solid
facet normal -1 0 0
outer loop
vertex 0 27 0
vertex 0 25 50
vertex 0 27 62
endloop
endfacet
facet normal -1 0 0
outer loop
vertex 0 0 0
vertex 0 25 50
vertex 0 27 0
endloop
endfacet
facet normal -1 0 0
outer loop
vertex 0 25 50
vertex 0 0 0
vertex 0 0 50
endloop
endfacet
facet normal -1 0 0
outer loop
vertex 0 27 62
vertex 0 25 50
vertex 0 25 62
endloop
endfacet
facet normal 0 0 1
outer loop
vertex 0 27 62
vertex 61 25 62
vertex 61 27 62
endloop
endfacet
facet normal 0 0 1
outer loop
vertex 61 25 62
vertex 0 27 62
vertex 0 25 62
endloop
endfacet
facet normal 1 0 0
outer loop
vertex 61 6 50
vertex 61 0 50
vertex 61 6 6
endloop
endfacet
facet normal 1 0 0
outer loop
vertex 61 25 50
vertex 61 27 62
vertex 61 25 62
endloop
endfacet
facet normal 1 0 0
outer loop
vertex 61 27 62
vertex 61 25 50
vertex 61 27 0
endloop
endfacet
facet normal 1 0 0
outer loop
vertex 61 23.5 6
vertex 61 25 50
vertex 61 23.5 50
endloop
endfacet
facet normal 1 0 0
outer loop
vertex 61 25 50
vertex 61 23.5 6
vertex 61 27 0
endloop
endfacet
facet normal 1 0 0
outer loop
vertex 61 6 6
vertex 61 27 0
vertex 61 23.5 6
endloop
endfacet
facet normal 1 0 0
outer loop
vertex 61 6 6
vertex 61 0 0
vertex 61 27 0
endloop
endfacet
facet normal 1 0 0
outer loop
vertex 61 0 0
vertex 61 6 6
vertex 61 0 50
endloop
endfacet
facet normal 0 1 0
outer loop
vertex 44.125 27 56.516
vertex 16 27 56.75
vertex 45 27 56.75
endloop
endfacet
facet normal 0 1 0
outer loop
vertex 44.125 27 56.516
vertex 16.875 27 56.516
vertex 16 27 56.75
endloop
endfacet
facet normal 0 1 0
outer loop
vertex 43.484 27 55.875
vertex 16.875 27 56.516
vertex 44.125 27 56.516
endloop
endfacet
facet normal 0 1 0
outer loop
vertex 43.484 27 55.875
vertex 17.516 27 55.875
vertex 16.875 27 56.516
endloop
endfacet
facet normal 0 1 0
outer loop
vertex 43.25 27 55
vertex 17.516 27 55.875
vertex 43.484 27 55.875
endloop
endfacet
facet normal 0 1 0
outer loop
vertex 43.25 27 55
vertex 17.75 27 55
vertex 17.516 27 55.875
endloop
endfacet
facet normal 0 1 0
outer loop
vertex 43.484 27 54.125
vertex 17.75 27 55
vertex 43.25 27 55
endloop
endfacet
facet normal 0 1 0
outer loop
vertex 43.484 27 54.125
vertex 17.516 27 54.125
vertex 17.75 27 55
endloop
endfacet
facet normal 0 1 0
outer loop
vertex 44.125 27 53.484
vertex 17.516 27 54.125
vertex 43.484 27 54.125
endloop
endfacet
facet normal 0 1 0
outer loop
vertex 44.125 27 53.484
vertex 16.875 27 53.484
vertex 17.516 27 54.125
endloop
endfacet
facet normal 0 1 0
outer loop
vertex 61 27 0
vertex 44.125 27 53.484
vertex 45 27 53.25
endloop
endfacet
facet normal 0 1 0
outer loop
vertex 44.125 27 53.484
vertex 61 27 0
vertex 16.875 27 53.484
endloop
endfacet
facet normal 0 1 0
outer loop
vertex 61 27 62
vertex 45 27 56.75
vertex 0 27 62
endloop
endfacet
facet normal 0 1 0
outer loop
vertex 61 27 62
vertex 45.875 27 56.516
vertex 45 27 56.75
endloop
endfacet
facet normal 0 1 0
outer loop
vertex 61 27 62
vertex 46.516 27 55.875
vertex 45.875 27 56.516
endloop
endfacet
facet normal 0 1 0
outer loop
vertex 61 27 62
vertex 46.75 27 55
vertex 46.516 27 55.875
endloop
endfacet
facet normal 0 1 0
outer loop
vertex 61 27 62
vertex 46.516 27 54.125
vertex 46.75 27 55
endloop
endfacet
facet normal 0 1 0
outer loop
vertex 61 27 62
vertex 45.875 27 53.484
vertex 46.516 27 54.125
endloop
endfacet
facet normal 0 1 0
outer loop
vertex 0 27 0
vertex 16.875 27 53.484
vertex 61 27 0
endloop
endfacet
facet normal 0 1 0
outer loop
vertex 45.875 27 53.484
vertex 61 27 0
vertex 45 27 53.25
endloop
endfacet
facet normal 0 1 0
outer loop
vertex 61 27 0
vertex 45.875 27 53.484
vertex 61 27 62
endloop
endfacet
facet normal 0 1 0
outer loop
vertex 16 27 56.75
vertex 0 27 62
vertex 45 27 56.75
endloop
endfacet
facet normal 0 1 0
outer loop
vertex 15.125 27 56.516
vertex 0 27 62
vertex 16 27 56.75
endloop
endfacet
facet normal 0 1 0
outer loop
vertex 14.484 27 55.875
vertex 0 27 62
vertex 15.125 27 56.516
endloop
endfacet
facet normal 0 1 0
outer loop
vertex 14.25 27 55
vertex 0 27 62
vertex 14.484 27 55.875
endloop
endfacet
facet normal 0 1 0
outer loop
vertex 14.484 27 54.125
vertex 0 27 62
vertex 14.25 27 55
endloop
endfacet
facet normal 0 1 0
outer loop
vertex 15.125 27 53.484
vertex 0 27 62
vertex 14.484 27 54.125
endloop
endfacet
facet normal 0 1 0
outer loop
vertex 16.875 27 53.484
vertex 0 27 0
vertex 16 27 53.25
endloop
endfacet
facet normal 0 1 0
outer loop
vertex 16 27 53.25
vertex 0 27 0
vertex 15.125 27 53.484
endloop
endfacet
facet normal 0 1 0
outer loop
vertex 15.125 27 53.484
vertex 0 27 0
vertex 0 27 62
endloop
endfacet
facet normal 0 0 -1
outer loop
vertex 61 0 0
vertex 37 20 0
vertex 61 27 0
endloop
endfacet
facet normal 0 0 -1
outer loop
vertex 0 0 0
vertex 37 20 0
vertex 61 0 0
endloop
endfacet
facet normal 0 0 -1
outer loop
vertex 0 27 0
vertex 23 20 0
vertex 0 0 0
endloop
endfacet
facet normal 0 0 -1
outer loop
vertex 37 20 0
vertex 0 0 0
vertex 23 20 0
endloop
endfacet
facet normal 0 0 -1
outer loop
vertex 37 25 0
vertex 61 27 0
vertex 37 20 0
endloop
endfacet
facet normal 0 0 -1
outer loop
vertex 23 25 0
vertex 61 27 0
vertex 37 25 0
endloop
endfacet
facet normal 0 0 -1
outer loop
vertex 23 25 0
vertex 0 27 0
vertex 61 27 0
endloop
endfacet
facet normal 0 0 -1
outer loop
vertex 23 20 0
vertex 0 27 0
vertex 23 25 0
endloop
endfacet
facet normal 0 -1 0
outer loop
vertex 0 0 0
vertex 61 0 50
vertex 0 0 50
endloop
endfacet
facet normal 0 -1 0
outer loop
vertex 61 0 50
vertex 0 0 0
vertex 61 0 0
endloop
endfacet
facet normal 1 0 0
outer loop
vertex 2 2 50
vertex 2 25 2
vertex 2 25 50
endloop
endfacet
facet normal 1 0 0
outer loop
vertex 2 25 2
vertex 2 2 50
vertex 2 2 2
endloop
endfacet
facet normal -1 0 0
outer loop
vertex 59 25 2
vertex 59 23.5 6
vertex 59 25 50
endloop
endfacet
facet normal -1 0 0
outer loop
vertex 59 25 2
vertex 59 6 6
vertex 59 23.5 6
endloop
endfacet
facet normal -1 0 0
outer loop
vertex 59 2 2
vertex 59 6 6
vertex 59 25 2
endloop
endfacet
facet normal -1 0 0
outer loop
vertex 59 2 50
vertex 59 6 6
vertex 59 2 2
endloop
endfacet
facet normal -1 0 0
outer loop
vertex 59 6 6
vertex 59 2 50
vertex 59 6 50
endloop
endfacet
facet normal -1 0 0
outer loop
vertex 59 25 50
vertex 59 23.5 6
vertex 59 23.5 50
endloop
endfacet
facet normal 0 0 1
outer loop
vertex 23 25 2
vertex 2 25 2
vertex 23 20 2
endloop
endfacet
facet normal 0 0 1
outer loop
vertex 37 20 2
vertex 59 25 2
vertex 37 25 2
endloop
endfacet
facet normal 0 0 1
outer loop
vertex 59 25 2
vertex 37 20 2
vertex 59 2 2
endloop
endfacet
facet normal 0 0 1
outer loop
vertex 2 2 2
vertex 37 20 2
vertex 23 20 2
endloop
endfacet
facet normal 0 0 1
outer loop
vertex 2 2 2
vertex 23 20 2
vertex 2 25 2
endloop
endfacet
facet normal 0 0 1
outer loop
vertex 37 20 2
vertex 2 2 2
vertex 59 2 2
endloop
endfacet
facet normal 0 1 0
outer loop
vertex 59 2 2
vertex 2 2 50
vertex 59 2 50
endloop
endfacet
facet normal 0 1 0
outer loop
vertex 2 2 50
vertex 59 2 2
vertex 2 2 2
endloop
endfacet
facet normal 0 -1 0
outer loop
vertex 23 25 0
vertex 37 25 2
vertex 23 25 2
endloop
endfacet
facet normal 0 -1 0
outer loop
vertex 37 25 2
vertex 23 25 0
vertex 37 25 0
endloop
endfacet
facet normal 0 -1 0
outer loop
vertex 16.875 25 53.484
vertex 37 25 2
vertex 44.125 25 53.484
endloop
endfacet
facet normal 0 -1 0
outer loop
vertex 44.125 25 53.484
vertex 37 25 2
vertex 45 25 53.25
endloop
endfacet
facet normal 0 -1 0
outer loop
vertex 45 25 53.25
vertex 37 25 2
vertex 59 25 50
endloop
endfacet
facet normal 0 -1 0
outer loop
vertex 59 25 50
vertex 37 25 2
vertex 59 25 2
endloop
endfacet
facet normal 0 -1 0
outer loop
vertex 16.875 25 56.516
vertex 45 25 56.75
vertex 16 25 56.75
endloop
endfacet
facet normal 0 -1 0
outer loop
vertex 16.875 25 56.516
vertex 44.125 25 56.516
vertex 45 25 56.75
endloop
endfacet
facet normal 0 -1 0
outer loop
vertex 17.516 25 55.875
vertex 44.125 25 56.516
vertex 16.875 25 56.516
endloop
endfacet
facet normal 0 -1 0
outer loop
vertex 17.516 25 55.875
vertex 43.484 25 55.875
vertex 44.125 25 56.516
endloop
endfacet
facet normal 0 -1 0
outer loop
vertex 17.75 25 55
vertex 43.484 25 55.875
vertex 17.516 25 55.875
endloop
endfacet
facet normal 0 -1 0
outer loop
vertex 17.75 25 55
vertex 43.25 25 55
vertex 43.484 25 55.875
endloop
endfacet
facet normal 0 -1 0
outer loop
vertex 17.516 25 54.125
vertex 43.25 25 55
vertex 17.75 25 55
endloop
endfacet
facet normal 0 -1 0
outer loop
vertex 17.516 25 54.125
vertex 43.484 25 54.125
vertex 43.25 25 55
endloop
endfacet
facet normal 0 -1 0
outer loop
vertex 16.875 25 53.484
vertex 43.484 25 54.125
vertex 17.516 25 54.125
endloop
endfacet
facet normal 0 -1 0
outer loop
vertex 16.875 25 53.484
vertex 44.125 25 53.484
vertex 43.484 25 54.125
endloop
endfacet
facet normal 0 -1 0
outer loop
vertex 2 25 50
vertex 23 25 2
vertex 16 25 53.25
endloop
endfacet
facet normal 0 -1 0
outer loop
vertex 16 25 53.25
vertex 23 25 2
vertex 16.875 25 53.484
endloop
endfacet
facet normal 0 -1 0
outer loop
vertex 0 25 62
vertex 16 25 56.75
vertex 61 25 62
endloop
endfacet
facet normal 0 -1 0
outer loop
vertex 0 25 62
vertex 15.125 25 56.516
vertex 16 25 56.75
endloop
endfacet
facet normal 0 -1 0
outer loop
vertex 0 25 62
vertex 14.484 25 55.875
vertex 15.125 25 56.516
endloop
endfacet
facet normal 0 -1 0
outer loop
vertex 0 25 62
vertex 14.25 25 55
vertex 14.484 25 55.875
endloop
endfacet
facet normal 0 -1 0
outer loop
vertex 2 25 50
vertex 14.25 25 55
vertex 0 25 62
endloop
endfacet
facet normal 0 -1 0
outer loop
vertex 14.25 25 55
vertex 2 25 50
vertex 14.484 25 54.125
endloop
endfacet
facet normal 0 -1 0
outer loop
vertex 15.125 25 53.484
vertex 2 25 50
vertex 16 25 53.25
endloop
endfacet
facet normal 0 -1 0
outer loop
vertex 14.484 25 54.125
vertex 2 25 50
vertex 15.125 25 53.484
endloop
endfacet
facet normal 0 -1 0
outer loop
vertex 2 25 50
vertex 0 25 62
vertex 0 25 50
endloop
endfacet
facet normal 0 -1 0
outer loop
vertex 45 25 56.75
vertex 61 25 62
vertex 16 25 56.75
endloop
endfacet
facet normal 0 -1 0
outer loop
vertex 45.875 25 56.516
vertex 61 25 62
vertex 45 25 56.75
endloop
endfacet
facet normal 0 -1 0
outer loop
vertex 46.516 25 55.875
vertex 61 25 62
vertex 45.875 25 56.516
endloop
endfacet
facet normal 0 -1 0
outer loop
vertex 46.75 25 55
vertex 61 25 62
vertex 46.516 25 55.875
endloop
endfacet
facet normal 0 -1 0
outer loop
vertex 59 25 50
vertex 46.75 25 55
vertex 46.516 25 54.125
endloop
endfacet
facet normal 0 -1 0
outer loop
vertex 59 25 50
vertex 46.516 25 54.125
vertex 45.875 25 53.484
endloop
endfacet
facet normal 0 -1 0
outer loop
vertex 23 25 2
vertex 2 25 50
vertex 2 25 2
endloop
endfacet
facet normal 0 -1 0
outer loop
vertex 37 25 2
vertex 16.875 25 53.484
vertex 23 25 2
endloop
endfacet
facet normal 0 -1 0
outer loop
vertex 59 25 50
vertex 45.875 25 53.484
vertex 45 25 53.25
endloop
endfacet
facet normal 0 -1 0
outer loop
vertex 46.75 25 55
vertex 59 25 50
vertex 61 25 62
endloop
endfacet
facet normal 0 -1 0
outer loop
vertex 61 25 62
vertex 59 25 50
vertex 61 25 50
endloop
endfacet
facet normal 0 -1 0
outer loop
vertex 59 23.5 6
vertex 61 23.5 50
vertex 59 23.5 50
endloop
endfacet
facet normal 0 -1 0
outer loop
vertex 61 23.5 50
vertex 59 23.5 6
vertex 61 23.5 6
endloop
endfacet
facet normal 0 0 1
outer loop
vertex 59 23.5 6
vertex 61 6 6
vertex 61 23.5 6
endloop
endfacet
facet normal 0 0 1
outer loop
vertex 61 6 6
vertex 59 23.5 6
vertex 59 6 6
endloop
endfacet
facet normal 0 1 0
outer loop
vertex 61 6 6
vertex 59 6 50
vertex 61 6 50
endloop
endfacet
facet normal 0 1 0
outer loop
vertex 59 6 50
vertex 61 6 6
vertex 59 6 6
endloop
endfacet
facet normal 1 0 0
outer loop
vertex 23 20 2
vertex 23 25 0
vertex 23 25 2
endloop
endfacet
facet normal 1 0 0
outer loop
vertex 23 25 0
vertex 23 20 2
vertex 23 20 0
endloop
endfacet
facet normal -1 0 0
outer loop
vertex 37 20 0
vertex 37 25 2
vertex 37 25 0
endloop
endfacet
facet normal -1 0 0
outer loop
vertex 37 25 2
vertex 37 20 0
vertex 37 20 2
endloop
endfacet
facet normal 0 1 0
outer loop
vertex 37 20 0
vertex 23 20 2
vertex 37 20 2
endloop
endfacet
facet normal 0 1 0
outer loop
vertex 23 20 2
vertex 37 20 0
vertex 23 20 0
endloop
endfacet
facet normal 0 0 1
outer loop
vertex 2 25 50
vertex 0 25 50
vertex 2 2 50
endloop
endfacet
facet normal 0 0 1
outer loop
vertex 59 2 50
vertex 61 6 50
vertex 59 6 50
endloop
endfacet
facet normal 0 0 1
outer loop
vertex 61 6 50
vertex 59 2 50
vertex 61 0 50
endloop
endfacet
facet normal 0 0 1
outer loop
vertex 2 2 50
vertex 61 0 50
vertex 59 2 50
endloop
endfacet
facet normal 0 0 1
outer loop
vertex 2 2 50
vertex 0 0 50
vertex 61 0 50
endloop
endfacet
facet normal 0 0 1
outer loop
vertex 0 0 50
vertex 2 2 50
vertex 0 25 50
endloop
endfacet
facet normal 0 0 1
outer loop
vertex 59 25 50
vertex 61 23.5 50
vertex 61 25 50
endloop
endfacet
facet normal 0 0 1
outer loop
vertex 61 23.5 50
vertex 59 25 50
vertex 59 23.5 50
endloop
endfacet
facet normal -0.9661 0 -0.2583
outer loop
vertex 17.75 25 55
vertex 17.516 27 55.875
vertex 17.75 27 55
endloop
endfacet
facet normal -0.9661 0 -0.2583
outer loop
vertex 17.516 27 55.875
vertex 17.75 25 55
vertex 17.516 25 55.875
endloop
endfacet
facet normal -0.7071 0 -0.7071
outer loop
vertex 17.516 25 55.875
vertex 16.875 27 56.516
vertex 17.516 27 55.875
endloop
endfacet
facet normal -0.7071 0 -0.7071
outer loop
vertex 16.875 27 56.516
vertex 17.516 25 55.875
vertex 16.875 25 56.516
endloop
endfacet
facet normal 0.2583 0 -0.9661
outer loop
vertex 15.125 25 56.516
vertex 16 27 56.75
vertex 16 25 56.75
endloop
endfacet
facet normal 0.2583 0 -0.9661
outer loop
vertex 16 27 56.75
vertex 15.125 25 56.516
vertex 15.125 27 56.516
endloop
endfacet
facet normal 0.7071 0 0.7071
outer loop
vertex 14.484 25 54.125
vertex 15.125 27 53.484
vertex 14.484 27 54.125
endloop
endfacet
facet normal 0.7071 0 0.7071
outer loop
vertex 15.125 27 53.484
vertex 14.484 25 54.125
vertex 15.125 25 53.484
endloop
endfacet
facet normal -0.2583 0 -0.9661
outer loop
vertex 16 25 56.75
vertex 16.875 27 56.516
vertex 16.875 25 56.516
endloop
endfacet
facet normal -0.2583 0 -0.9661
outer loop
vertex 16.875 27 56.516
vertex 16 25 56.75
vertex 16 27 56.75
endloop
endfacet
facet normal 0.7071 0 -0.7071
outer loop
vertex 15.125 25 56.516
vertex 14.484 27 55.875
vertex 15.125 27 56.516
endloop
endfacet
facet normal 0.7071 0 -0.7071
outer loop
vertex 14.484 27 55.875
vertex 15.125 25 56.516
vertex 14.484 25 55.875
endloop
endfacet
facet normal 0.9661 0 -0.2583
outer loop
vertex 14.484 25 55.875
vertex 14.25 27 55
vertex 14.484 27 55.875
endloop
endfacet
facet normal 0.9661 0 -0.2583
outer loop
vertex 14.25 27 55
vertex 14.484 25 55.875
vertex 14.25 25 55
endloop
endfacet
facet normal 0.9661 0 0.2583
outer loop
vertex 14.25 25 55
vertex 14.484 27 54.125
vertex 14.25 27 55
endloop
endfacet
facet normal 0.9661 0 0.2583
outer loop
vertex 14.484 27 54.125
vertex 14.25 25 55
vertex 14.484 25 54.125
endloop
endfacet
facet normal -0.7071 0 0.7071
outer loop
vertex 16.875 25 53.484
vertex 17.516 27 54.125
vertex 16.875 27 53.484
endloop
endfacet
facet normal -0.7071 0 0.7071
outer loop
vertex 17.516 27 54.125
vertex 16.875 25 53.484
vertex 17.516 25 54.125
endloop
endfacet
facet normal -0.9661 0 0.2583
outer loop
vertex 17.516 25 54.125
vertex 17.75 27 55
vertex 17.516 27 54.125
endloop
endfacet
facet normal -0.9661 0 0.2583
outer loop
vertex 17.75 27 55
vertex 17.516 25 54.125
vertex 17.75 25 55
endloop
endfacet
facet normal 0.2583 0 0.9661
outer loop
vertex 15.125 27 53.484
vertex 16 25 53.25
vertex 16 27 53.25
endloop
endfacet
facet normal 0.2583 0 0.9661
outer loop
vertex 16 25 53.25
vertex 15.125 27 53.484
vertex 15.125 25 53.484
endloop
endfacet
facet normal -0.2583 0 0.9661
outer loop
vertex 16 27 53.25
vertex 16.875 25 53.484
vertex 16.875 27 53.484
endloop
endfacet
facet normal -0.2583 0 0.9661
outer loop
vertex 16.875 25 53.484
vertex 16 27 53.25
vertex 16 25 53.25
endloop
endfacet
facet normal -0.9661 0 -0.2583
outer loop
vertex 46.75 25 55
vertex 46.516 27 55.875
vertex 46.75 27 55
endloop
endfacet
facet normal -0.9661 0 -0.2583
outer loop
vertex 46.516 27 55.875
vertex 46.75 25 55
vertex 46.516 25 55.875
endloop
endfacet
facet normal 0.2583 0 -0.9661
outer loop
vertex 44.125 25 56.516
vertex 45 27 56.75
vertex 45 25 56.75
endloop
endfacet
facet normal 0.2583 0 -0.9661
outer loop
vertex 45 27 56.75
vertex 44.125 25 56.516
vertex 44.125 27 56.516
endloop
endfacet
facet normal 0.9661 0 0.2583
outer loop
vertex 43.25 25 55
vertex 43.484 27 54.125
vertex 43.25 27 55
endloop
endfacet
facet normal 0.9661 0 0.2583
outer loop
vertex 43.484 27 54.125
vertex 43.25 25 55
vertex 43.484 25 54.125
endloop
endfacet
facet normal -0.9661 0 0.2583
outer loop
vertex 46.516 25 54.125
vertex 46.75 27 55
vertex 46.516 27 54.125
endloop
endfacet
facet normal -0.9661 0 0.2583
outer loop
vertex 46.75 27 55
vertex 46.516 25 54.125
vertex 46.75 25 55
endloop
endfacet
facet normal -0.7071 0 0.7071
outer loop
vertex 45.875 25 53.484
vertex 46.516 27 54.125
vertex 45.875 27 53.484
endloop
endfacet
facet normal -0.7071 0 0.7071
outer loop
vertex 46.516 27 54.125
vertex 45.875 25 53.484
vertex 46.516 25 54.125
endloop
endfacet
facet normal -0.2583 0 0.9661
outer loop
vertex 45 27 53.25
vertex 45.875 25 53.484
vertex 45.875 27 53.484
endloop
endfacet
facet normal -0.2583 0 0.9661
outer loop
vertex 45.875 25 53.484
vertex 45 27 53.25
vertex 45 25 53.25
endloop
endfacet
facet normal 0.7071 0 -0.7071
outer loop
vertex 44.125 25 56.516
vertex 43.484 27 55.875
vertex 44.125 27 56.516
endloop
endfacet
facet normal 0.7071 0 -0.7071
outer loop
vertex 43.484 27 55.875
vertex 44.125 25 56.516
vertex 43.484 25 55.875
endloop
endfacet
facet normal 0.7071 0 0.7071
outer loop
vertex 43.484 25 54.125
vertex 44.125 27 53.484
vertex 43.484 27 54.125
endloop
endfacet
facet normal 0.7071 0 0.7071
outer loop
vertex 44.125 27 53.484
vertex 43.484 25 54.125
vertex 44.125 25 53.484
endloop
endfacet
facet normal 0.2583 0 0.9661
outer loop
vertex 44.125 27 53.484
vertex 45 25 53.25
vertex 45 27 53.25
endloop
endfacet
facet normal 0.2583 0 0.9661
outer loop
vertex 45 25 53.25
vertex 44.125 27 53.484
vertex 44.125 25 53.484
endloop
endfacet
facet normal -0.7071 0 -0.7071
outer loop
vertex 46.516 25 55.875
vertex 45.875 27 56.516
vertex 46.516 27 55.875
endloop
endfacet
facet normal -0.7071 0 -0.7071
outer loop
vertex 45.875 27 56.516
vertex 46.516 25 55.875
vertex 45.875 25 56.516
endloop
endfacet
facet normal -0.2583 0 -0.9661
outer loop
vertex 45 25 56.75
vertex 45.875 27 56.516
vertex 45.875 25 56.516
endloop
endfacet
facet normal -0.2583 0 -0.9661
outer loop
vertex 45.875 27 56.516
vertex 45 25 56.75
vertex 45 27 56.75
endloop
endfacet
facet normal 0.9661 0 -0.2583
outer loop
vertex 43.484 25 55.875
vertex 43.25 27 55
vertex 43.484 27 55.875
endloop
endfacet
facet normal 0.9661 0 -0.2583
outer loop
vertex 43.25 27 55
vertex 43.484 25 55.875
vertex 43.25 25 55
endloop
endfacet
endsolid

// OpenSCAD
w = 57;
d = 23;
h = 60;
top = 50;

wall = 2;

difference() {
    cube([w + 2 * wall, d + 2 * wall, h + wall]);
    translate([wall, wall, wall])
        cube([w, d, h + 1]);
    translate([w + wall - 1, d + wall - 17.5 - 1.5, 4 + wall])
        cube([wall + 2, 17.5, 50]);
    translate([wall + 21, d + wall - 5, -1])
        cube([14, 5, wall + 2]);
    translate([-1, -1, top])
        cube([w + 2 * wall + 2, d + wall + 1, h]);
    translate([w/3 + wall - 5, d + wall - 1, h - ((h - top) / 2)])
        rotate([90, 0, 0])
            cylinder(h = wall + 6, d = 3.5, $fn = 12, center = true);
    translate([(2 * w)/3 + wall + 5, d + wall - 1, h - ((h - top) / 2)])
        rotate([90, 0, 0])
            cylinder(h = wall + 6, d = 3.5, $fn = 12, center = true);
}
